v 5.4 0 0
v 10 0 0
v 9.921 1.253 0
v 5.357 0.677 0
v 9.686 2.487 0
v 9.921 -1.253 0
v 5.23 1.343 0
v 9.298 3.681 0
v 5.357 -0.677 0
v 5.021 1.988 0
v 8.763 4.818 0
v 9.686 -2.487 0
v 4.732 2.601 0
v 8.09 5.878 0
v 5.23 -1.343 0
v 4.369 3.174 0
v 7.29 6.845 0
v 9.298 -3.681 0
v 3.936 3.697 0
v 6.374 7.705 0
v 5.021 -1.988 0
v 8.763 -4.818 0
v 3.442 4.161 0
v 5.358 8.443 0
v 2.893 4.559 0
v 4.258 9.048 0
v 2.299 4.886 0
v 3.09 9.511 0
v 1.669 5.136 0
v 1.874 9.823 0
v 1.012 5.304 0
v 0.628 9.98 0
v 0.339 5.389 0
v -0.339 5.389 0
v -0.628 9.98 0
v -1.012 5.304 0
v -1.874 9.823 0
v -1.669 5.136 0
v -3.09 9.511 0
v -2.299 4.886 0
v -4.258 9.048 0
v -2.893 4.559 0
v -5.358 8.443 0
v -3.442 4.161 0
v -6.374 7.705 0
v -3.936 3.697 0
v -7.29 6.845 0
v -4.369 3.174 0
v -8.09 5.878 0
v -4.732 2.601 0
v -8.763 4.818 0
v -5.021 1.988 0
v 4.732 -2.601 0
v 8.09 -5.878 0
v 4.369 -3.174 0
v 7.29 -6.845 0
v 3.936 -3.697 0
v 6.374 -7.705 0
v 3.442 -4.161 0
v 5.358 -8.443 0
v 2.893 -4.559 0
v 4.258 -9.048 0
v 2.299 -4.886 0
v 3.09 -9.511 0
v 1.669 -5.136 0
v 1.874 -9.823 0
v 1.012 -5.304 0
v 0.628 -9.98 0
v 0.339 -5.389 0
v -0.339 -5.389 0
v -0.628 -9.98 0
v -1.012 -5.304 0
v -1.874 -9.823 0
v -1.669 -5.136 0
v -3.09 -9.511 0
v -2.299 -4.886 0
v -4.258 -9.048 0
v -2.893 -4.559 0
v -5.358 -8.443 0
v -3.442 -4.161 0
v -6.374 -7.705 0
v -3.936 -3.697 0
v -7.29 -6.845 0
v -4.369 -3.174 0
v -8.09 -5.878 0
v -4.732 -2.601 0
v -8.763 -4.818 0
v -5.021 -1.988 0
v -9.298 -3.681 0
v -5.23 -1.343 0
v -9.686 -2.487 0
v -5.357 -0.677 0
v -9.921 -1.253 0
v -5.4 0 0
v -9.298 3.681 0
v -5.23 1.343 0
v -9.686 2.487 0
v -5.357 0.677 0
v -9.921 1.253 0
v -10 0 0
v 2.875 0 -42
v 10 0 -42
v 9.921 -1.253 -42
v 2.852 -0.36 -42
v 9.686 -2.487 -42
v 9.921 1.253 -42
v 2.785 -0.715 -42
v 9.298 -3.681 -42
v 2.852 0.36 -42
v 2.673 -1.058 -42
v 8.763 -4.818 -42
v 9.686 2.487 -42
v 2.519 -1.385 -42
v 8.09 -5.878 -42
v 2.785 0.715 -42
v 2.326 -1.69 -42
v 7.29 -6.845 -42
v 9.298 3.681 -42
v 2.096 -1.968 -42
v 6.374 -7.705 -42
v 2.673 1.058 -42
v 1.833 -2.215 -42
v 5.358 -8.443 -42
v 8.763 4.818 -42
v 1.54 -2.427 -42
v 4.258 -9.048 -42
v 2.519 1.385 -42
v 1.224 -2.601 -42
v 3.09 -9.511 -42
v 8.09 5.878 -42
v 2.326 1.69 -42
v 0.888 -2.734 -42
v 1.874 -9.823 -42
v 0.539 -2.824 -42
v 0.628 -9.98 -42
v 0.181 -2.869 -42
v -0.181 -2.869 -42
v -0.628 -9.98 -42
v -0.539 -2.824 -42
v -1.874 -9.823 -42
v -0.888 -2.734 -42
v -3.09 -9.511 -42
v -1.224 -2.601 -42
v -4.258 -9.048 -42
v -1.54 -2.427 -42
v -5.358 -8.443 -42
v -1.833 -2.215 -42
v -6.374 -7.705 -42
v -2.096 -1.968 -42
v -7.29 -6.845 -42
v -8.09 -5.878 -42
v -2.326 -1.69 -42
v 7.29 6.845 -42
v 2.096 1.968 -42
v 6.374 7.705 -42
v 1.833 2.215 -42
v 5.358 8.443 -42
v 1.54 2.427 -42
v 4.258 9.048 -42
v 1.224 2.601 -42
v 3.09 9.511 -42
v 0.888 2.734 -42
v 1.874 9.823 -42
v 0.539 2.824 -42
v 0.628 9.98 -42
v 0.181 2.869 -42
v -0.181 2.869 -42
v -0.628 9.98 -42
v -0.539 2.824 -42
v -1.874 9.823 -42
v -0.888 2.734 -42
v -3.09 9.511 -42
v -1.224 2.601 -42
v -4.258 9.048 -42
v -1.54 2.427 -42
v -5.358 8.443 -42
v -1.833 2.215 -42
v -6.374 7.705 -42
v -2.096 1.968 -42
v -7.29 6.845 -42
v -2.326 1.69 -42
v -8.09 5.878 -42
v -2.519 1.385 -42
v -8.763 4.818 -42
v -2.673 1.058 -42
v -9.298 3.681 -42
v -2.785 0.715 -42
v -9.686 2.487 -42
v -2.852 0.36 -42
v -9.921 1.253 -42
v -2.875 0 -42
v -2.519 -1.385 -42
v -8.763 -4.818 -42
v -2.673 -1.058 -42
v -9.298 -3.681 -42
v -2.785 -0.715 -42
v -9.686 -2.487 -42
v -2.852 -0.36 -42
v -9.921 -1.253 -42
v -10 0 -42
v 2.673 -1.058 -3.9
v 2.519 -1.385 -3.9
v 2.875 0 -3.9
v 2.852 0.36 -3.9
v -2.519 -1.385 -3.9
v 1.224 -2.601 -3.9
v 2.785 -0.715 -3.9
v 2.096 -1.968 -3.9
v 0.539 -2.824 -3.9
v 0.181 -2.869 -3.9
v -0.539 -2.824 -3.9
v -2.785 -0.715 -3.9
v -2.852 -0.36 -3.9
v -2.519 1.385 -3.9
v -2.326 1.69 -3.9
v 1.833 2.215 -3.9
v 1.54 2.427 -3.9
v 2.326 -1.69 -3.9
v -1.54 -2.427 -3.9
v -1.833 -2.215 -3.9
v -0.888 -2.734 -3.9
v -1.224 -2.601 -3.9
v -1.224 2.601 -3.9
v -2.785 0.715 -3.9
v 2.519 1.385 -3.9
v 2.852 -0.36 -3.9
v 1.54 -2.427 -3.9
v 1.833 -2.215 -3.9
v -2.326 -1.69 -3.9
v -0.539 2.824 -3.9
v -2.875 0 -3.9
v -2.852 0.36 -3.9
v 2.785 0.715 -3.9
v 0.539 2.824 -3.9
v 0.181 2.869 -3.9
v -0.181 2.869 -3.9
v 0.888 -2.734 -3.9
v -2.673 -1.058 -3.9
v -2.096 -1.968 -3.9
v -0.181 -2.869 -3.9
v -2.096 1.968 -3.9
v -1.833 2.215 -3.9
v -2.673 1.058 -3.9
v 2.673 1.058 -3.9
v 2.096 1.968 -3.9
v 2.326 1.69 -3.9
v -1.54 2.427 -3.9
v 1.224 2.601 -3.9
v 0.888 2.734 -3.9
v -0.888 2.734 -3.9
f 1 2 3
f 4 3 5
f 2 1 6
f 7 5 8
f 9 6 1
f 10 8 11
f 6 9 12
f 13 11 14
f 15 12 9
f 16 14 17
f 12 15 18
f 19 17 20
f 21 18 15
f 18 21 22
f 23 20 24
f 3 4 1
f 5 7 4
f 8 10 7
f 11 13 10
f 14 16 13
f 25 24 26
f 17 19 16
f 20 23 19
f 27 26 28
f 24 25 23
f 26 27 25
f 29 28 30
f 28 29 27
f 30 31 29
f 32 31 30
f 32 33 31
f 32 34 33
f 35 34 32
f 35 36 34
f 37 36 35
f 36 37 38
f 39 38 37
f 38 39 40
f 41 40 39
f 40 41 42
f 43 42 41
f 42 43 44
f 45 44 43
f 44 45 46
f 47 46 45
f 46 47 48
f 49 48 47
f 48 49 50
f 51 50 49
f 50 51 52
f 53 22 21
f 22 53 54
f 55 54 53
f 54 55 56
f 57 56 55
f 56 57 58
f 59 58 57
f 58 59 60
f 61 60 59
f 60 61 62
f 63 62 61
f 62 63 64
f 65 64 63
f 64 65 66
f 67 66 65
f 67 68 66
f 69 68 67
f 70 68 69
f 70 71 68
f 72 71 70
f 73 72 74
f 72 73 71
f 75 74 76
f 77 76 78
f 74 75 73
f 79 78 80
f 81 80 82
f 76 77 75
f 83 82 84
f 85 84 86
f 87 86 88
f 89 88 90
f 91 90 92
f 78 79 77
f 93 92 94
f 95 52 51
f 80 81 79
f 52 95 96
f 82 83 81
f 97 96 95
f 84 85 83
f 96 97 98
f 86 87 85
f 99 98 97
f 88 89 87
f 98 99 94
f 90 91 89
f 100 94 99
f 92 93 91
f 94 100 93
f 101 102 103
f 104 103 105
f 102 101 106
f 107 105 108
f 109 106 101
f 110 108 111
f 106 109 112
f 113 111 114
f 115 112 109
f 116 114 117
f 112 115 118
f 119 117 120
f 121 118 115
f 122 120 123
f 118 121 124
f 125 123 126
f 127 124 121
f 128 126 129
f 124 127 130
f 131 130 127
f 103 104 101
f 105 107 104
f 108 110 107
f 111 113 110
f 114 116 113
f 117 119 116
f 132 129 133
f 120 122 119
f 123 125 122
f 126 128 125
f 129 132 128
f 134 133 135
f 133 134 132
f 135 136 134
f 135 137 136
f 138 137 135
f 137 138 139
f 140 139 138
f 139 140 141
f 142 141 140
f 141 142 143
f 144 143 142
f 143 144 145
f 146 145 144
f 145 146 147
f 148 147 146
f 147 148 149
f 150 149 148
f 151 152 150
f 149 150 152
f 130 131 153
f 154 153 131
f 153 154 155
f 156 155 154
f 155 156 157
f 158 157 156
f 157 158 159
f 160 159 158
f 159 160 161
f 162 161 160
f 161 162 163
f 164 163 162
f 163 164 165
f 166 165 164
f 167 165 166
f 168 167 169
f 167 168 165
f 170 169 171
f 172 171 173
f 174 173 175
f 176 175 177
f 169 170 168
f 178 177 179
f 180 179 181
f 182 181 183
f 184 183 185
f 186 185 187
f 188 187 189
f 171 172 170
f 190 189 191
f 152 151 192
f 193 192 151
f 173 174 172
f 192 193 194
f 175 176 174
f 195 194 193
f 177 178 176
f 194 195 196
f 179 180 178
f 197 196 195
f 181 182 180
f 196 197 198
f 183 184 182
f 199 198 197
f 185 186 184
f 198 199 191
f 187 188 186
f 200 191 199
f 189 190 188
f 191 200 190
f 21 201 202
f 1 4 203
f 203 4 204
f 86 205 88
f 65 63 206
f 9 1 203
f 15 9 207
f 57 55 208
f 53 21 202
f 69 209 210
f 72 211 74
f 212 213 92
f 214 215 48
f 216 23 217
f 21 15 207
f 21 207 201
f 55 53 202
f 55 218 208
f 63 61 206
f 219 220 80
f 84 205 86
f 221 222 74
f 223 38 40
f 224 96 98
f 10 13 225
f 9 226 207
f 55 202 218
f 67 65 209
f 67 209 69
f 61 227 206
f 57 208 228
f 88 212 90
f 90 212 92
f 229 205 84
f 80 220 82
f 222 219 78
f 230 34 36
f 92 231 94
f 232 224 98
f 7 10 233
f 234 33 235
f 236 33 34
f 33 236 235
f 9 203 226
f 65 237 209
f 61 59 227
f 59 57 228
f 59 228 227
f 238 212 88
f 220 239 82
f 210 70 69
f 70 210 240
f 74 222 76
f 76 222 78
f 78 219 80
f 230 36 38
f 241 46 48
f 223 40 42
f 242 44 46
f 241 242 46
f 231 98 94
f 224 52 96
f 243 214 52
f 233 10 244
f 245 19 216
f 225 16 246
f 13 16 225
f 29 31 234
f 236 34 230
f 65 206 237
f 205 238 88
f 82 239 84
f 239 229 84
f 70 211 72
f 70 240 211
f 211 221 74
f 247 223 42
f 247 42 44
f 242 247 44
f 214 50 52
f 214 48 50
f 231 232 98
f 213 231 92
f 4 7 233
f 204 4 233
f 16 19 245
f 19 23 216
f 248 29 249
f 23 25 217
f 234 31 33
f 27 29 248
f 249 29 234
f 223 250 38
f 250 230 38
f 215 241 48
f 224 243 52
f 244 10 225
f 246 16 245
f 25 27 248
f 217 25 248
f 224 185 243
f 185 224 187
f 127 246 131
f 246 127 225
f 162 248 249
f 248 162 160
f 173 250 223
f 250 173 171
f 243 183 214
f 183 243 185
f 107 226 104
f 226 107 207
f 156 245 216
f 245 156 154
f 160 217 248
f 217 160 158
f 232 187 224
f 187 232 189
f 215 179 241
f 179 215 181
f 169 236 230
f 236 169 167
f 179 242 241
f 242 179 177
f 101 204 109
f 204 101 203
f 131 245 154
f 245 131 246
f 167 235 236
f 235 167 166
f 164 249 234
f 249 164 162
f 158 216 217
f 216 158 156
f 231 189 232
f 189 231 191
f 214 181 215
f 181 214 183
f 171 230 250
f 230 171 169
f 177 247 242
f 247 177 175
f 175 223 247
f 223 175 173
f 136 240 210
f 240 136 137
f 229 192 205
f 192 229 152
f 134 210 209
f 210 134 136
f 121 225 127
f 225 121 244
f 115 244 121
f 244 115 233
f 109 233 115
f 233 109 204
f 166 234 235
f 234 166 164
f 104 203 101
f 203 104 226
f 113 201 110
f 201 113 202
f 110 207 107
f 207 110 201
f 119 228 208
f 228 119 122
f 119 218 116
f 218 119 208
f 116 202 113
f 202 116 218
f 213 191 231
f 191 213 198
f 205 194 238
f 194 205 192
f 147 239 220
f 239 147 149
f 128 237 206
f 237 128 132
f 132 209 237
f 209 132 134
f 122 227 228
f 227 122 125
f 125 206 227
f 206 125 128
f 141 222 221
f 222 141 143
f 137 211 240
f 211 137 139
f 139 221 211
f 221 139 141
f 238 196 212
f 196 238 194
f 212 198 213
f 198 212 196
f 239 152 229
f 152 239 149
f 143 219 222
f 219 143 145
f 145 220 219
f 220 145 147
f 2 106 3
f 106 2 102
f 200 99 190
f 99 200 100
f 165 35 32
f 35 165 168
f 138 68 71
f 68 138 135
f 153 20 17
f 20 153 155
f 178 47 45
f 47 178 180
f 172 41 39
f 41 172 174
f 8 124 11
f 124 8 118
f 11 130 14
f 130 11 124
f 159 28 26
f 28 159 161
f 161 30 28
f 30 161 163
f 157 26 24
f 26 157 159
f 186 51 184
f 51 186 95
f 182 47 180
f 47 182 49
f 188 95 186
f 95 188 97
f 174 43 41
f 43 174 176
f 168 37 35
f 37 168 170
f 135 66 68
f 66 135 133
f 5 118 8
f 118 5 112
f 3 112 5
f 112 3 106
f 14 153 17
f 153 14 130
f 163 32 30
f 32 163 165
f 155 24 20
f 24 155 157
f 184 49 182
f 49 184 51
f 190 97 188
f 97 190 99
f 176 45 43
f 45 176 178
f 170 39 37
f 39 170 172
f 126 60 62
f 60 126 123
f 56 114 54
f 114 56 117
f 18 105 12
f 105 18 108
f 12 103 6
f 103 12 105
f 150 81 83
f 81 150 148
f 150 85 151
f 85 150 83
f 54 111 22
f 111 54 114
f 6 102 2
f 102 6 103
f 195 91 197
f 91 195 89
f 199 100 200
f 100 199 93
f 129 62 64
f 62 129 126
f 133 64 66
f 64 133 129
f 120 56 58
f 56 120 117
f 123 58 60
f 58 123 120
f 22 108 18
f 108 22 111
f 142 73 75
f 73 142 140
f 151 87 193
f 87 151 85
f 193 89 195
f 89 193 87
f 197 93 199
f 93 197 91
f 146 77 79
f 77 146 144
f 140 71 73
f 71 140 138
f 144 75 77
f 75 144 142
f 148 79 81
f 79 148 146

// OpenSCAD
$fn = 50;


difference() {
	union() {
		translate(v = [0, 0, -42.0000000000]) {
			cylinder(h = 42, r = 10.0000000000);
		}
		cylinder(h = 0, r = 19.0000000000);
	}
	union() {
		translate(v = [0, 0, 0]) {
			rotate(a = [0, 0, 0]) {
				difference() {
					union() {
						#translate(v = [0, 0, -42.0000000000]) {
							cylinder(h = 42, r = 2.6000000000);
						}
						#translate(v = [0, 0, -3.9000000000]) {
							cylinder(h = 3.9000000000, r1 = 2.8750000000, r2 = 5.4000000000);
						}
						#translate(v = [0, 0, -42.0000000000]) {
							cylinder(h = 42, r = 2.8750000000);
						}
						#translate(v = [0, 0, -42.0000000000]) {
							cylinder(h = 42, r = 2.6000000000);
						}
					}
					union();
				}
			}
		}
	}
}
